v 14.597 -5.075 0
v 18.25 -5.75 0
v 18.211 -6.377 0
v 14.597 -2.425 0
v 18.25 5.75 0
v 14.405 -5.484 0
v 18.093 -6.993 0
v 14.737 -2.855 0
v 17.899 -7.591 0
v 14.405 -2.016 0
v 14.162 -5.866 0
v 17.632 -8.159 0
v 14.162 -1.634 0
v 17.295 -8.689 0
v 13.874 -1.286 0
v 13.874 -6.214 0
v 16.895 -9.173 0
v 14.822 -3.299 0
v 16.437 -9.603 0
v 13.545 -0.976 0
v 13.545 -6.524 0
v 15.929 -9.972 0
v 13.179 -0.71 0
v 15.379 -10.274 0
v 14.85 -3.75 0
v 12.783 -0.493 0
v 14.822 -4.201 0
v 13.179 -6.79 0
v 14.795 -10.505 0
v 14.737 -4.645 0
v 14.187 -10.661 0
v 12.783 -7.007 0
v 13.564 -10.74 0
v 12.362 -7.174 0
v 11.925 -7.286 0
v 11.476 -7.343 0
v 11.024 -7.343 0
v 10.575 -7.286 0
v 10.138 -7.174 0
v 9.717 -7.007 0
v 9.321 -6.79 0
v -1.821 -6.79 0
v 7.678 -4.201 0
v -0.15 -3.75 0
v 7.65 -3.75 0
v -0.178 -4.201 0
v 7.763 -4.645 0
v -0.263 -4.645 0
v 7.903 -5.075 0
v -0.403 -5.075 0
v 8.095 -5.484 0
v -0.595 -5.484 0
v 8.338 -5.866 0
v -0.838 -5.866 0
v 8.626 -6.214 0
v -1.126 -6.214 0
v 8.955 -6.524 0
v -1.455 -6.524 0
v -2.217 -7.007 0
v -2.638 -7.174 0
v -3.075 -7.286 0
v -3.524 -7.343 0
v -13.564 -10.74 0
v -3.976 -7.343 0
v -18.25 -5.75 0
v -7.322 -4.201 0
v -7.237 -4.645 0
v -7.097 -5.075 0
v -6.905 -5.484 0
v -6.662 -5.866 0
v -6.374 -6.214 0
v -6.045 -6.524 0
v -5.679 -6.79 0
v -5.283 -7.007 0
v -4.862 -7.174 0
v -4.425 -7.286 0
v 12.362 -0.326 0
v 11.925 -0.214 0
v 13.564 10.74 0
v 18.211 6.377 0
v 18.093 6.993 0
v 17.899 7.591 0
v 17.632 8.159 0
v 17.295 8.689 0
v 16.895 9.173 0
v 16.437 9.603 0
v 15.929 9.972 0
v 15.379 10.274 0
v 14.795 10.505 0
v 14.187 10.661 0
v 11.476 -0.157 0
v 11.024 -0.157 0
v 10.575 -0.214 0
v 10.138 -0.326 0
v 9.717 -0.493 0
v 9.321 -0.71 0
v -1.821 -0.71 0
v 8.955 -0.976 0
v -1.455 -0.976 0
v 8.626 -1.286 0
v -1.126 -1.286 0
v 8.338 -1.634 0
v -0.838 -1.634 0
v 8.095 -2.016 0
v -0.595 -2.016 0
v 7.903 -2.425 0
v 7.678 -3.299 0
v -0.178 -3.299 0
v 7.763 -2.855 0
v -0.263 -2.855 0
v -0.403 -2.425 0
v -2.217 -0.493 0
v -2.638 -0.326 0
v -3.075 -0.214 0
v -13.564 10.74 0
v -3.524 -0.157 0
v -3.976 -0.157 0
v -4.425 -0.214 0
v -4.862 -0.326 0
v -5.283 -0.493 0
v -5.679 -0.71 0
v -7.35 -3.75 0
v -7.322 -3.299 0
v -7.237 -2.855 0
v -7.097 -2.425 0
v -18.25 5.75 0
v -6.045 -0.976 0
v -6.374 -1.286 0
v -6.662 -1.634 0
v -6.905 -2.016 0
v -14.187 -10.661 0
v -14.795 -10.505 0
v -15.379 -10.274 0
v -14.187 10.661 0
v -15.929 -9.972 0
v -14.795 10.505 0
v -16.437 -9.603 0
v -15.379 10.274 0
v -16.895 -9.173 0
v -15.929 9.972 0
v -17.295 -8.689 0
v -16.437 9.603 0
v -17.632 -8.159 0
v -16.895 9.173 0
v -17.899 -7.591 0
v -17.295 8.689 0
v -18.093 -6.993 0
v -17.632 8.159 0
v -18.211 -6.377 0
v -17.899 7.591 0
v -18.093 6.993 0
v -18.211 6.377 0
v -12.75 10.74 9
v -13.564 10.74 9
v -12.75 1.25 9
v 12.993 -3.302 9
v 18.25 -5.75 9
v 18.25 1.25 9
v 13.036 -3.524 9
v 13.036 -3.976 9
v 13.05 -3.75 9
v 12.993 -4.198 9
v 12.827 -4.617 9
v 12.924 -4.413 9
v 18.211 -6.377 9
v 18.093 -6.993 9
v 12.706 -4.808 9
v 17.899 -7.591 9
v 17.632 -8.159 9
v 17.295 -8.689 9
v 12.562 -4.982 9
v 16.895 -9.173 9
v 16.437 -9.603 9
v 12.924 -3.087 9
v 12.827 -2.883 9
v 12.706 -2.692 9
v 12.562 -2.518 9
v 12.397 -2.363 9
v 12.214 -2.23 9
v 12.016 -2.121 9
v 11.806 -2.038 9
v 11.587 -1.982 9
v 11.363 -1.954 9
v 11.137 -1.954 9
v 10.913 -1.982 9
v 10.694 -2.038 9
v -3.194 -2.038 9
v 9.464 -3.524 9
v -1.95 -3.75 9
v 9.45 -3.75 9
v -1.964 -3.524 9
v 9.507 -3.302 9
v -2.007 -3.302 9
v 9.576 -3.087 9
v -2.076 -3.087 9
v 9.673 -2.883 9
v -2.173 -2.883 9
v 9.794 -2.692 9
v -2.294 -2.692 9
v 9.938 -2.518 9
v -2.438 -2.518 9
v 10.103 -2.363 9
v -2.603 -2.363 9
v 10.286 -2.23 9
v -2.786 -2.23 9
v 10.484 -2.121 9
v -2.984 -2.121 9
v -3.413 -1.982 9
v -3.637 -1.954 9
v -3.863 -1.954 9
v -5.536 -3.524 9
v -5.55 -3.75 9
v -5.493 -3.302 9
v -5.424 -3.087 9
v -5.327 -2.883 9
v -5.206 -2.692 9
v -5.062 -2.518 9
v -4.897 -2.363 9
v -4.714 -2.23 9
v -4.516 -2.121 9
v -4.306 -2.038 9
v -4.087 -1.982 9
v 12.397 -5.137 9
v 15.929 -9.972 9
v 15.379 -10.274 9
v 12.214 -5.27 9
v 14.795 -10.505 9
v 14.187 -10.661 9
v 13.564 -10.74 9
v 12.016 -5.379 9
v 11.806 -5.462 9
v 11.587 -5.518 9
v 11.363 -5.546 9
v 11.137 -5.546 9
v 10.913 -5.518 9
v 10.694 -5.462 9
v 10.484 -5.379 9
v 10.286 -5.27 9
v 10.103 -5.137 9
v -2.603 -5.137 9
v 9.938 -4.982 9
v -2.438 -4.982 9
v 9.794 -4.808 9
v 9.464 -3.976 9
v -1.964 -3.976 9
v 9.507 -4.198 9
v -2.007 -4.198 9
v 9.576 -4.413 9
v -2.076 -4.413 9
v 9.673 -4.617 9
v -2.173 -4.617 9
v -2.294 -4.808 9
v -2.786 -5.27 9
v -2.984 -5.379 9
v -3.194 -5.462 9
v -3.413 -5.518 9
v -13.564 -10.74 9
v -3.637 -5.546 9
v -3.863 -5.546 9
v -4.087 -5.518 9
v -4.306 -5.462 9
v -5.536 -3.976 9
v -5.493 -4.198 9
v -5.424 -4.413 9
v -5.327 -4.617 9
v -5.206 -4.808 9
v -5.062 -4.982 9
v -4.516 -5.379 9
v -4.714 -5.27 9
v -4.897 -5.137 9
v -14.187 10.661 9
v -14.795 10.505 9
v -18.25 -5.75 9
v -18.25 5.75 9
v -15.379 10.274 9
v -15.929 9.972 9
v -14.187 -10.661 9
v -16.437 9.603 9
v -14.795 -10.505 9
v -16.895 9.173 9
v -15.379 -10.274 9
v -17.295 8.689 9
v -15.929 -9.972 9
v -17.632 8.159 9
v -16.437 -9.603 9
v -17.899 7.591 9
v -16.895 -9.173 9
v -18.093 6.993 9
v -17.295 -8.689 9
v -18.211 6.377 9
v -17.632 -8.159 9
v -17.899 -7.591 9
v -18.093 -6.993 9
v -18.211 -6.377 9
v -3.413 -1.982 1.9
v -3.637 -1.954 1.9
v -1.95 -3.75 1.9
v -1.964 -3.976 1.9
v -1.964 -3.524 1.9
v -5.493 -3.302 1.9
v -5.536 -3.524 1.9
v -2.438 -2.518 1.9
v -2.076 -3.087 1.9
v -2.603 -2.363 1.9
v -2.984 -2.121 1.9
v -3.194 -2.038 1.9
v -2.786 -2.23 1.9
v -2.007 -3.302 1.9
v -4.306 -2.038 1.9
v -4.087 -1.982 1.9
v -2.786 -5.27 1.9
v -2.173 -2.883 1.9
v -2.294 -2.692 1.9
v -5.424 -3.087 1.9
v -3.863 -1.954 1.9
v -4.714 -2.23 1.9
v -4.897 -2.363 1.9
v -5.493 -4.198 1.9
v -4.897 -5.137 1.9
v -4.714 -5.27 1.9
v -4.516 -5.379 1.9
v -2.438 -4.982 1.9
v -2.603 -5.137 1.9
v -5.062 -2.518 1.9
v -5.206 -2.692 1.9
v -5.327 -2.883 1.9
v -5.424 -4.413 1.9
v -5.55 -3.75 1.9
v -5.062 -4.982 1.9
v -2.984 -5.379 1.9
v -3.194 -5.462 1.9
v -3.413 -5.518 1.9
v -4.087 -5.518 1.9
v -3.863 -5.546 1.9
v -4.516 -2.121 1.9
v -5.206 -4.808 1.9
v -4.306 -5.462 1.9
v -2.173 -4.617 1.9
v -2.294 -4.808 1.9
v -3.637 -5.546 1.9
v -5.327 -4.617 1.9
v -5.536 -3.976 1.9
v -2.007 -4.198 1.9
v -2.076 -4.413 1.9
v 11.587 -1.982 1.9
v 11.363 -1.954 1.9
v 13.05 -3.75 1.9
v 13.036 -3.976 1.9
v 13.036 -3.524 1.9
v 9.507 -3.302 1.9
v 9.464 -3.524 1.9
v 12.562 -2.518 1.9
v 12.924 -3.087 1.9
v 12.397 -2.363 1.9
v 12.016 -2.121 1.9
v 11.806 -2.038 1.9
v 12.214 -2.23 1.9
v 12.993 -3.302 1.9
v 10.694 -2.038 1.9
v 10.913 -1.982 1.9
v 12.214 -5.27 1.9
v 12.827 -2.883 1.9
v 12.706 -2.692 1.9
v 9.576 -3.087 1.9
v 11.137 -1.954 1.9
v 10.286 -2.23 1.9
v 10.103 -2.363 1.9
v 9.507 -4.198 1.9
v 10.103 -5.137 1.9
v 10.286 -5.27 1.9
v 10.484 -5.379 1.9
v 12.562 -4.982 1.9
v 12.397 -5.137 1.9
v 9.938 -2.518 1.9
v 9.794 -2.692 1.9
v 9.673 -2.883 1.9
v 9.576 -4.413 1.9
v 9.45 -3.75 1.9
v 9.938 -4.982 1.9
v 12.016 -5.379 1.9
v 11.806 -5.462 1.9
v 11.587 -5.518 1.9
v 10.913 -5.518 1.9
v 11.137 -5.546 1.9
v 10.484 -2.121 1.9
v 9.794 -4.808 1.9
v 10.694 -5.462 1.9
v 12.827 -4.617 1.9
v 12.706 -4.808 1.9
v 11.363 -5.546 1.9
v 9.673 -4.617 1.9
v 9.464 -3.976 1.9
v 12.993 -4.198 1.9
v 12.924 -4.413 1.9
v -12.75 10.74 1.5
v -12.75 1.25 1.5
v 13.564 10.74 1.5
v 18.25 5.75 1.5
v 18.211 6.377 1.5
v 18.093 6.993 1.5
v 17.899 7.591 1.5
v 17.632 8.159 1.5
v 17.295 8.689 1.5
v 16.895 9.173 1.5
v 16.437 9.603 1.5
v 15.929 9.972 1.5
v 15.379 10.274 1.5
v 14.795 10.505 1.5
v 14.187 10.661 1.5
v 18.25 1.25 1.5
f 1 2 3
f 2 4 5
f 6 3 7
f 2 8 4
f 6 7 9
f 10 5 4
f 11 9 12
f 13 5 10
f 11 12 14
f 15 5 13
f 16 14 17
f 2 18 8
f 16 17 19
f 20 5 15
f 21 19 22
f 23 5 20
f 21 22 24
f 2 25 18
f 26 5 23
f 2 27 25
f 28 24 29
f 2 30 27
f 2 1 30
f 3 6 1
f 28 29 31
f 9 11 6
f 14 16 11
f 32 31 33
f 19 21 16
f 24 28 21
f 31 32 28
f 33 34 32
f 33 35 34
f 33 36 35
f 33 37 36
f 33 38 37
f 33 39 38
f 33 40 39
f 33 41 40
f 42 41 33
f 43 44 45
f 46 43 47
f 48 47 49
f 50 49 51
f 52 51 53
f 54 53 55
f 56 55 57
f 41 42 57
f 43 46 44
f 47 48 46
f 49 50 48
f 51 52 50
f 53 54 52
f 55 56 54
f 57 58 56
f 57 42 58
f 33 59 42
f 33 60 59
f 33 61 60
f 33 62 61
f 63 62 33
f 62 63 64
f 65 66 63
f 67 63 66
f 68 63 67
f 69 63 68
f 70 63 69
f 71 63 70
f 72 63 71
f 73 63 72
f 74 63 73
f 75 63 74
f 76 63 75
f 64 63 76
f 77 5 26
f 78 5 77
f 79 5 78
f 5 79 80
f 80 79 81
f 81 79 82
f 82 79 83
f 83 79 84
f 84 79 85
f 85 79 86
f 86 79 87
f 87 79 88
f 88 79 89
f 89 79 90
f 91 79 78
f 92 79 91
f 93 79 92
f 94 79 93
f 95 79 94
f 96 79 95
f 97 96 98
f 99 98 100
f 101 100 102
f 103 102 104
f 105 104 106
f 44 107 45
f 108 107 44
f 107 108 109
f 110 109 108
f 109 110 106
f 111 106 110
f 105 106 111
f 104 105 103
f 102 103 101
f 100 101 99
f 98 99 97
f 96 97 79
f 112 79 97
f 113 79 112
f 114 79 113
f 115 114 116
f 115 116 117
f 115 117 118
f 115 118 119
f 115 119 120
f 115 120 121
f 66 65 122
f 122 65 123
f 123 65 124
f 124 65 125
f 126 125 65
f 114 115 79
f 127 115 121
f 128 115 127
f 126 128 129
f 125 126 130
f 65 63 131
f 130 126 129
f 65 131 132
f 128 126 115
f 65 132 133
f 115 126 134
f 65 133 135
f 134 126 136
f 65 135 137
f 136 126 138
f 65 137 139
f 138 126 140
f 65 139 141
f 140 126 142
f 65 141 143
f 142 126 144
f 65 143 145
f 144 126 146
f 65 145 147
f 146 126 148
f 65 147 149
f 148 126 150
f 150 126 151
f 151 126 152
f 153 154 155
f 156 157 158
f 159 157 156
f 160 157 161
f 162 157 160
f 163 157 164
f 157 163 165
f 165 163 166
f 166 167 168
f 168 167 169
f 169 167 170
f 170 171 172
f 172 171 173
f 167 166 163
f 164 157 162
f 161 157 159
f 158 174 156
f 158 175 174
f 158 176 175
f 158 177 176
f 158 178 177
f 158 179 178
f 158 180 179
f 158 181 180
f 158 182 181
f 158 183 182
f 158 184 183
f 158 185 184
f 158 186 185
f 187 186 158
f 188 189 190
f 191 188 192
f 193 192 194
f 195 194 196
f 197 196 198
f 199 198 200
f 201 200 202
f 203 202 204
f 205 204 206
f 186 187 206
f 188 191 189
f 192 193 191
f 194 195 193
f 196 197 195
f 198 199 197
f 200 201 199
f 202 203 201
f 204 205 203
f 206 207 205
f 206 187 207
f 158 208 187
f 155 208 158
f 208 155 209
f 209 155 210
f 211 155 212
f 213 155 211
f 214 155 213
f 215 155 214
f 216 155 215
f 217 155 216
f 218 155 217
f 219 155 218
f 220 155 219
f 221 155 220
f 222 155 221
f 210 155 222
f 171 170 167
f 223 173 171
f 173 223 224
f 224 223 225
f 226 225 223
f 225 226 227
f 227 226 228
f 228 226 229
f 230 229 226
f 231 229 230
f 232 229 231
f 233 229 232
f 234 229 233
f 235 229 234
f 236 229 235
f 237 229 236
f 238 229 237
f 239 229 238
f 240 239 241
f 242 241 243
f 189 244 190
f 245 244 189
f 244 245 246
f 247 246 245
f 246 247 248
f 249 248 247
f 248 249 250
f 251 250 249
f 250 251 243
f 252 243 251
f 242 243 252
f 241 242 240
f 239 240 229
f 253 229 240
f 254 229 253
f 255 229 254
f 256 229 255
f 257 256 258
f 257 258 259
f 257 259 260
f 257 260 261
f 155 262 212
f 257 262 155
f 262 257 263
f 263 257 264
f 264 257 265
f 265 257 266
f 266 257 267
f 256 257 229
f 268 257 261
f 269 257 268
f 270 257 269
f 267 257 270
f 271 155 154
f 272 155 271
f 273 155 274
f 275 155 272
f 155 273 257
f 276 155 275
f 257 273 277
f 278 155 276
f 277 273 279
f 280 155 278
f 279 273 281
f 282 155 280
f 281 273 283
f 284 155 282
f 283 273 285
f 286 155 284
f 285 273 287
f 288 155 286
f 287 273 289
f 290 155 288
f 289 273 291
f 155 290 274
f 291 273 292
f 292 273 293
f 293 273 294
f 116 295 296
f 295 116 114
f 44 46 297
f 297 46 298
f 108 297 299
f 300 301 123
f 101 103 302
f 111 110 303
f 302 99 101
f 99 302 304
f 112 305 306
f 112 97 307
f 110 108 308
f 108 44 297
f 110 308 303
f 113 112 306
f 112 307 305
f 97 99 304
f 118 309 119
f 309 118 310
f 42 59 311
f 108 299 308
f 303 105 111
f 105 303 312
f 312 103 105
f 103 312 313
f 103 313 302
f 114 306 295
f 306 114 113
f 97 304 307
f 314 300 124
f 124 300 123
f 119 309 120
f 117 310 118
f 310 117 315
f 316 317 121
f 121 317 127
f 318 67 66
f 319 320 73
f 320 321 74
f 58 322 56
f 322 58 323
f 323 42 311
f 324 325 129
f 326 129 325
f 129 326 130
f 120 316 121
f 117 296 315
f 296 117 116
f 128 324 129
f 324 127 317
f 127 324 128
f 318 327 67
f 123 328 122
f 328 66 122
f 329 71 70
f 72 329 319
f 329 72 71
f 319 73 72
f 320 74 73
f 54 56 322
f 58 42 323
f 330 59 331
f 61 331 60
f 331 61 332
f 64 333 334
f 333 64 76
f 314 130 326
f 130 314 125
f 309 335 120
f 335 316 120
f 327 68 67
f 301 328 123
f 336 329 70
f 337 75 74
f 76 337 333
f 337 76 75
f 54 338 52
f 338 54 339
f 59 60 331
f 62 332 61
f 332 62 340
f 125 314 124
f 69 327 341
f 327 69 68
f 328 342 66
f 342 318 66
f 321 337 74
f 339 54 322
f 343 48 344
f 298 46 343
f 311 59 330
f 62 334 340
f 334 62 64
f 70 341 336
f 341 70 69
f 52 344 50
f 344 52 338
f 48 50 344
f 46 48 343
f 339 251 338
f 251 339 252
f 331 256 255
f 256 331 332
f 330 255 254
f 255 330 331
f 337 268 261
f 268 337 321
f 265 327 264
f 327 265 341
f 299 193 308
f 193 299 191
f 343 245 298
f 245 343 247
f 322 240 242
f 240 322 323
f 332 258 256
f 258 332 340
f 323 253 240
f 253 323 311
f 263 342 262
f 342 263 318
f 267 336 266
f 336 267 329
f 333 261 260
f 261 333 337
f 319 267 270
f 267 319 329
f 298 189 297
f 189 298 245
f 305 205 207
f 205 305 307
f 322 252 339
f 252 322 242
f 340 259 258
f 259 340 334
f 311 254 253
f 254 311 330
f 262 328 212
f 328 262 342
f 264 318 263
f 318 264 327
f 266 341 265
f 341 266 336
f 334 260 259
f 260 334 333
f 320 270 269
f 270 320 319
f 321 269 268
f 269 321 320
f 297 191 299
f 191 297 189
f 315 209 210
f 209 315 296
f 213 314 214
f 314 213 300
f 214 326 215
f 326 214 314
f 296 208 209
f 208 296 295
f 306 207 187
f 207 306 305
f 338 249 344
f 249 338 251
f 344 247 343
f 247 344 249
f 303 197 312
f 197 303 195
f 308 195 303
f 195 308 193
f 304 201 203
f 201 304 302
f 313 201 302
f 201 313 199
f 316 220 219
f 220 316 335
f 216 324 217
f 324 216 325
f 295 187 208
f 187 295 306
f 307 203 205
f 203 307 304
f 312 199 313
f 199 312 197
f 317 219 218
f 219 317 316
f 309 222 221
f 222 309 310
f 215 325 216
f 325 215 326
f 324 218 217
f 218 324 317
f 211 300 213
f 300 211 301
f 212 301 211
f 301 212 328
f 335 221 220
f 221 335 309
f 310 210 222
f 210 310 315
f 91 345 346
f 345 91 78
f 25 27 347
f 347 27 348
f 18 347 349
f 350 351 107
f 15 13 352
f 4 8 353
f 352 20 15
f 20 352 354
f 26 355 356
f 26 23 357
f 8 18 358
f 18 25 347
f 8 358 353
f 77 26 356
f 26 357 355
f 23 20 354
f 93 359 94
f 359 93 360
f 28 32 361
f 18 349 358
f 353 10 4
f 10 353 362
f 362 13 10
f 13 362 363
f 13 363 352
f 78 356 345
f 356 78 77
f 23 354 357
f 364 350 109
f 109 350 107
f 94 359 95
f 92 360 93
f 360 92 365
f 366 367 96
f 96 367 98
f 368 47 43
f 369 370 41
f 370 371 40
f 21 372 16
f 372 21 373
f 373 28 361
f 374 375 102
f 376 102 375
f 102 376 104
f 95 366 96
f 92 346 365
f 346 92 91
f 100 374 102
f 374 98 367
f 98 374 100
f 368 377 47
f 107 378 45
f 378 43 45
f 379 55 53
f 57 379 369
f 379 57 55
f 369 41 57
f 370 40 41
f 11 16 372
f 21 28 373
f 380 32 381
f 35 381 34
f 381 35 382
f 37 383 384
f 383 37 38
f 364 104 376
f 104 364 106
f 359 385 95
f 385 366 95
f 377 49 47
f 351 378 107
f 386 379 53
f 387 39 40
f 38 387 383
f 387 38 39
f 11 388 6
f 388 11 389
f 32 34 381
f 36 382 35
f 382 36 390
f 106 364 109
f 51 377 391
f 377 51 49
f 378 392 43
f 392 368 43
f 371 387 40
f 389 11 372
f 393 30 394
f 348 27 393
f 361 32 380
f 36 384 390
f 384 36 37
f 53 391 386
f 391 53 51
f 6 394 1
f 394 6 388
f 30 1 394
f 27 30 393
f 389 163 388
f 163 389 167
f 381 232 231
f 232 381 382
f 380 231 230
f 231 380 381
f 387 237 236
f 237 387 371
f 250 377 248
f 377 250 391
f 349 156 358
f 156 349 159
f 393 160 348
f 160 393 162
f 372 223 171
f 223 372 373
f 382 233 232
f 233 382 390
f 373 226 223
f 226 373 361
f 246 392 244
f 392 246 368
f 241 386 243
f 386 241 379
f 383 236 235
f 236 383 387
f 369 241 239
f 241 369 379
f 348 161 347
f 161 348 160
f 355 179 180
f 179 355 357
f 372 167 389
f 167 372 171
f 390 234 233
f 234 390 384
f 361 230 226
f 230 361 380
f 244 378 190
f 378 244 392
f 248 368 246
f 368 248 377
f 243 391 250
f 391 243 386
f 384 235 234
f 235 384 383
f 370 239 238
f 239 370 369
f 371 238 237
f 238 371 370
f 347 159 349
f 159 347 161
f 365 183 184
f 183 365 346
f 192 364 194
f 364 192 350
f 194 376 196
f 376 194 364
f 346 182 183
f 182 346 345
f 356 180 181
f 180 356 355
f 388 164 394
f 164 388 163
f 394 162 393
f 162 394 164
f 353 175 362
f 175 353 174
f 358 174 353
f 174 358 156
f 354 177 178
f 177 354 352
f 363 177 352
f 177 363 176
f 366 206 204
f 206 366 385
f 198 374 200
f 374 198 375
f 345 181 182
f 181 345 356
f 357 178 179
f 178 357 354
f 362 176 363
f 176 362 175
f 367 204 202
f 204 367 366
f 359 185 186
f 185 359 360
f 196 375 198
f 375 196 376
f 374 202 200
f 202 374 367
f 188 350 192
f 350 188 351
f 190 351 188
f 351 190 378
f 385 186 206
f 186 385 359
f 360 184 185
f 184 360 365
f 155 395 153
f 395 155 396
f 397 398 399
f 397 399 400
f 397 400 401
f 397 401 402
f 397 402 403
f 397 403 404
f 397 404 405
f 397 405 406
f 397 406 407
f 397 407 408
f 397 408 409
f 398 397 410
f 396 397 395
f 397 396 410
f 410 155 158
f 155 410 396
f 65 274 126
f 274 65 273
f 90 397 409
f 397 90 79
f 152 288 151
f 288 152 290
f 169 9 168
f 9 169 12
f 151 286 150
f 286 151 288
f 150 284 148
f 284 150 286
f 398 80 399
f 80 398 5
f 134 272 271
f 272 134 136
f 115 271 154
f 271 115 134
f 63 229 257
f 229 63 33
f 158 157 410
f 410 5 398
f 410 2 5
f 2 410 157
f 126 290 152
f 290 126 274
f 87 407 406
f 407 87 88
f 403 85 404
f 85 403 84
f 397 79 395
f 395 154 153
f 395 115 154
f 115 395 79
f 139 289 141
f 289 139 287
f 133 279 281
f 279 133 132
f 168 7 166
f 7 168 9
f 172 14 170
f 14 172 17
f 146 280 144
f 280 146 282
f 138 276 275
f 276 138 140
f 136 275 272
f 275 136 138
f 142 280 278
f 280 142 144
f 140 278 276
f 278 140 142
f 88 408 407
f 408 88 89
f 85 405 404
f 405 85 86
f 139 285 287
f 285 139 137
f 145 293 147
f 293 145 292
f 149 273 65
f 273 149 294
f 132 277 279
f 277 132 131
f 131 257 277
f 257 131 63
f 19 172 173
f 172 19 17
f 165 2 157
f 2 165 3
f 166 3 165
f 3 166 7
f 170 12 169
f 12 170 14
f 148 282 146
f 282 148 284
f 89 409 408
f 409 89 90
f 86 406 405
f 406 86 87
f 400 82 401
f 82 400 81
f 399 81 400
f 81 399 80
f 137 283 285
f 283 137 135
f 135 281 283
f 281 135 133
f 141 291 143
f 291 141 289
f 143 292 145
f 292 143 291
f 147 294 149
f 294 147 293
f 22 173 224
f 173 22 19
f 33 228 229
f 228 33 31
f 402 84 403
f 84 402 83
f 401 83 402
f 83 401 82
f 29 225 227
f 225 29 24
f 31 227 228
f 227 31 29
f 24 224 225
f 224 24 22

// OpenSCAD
$fn = 50;


difference() {
	union() {
		hull() {
			translate(v = [-13.2500000000, 5.7500000000, 0]) {
				cylinder(h = 9, r = 5);
			}
			translate(v = [13.2500000000, 5.7500000000, 0]) {
				cylinder(h = 9, r = 5);
			}
			translate(v = [-13.2500000000, -5.7500000000, 0]) {
				cylinder(h = 9, r = 5);
			}
			translate(v = [13.2500000000, -5.7500000000, 0]) {
				cylinder(h = 9, r = 5);
			}
		}
	}
	union() {
		translate(v = [-3.7500000000, -3.7500000000, 0]) {
			rotate(a = [180, 0, 0]) {
				difference() {
					union() {
						#translate(v = [0, 0, -9.0000000000]) {
							cylinder(h = 9, r = 1.5000000000);
						}
						#translate(v = [0, 0, -1.9000000000]) {
							cylinder(h = 1.9000000000, r1 = 1.8000000000, r2 = 3.6000000000);
						}
						#translate(v = [0, 0, -9.0000000000]) {
							cylinder(h = 9, r = 1.8000000000);
						}
						#translate(v = [0, 0, -9.0000000000]) {
							cylinder(h = 9, r = 1.5000000000);
						}
					}
					union();
				}
			}
		}
		translate(v = [11.2500000000, -3.7500000000, 0]) {
			rotate(a = [180, 0, 0]) {
				difference() {
					union() {
						#translate(v = [0, 0, -9.0000000000]) {
							cylinder(h = 9, r = 1.5000000000);
						}
						#translate(v = [0, 0, -1.9000000000]) {
							cylinder(h = 1.9000000000, r1 = 1.8000000000, r2 = 3.6000000000);
						}
						#translate(v = [0, 0, -9.0000000000]) {
							cylinder(h = 9, r = 1.8000000000);
						}
						#translate(v = [0, 0, -9.0000000000]) {
							cylinder(h = 9, r = 1.5000000000);
						}
					}
					union();
				}
			}
		}
		#translate(v = [-12.7500000000, 1.2500000000, 1.5000000000]) {
			cube(size = [156, 100, 7.5000000000]);
		}
	}
}
